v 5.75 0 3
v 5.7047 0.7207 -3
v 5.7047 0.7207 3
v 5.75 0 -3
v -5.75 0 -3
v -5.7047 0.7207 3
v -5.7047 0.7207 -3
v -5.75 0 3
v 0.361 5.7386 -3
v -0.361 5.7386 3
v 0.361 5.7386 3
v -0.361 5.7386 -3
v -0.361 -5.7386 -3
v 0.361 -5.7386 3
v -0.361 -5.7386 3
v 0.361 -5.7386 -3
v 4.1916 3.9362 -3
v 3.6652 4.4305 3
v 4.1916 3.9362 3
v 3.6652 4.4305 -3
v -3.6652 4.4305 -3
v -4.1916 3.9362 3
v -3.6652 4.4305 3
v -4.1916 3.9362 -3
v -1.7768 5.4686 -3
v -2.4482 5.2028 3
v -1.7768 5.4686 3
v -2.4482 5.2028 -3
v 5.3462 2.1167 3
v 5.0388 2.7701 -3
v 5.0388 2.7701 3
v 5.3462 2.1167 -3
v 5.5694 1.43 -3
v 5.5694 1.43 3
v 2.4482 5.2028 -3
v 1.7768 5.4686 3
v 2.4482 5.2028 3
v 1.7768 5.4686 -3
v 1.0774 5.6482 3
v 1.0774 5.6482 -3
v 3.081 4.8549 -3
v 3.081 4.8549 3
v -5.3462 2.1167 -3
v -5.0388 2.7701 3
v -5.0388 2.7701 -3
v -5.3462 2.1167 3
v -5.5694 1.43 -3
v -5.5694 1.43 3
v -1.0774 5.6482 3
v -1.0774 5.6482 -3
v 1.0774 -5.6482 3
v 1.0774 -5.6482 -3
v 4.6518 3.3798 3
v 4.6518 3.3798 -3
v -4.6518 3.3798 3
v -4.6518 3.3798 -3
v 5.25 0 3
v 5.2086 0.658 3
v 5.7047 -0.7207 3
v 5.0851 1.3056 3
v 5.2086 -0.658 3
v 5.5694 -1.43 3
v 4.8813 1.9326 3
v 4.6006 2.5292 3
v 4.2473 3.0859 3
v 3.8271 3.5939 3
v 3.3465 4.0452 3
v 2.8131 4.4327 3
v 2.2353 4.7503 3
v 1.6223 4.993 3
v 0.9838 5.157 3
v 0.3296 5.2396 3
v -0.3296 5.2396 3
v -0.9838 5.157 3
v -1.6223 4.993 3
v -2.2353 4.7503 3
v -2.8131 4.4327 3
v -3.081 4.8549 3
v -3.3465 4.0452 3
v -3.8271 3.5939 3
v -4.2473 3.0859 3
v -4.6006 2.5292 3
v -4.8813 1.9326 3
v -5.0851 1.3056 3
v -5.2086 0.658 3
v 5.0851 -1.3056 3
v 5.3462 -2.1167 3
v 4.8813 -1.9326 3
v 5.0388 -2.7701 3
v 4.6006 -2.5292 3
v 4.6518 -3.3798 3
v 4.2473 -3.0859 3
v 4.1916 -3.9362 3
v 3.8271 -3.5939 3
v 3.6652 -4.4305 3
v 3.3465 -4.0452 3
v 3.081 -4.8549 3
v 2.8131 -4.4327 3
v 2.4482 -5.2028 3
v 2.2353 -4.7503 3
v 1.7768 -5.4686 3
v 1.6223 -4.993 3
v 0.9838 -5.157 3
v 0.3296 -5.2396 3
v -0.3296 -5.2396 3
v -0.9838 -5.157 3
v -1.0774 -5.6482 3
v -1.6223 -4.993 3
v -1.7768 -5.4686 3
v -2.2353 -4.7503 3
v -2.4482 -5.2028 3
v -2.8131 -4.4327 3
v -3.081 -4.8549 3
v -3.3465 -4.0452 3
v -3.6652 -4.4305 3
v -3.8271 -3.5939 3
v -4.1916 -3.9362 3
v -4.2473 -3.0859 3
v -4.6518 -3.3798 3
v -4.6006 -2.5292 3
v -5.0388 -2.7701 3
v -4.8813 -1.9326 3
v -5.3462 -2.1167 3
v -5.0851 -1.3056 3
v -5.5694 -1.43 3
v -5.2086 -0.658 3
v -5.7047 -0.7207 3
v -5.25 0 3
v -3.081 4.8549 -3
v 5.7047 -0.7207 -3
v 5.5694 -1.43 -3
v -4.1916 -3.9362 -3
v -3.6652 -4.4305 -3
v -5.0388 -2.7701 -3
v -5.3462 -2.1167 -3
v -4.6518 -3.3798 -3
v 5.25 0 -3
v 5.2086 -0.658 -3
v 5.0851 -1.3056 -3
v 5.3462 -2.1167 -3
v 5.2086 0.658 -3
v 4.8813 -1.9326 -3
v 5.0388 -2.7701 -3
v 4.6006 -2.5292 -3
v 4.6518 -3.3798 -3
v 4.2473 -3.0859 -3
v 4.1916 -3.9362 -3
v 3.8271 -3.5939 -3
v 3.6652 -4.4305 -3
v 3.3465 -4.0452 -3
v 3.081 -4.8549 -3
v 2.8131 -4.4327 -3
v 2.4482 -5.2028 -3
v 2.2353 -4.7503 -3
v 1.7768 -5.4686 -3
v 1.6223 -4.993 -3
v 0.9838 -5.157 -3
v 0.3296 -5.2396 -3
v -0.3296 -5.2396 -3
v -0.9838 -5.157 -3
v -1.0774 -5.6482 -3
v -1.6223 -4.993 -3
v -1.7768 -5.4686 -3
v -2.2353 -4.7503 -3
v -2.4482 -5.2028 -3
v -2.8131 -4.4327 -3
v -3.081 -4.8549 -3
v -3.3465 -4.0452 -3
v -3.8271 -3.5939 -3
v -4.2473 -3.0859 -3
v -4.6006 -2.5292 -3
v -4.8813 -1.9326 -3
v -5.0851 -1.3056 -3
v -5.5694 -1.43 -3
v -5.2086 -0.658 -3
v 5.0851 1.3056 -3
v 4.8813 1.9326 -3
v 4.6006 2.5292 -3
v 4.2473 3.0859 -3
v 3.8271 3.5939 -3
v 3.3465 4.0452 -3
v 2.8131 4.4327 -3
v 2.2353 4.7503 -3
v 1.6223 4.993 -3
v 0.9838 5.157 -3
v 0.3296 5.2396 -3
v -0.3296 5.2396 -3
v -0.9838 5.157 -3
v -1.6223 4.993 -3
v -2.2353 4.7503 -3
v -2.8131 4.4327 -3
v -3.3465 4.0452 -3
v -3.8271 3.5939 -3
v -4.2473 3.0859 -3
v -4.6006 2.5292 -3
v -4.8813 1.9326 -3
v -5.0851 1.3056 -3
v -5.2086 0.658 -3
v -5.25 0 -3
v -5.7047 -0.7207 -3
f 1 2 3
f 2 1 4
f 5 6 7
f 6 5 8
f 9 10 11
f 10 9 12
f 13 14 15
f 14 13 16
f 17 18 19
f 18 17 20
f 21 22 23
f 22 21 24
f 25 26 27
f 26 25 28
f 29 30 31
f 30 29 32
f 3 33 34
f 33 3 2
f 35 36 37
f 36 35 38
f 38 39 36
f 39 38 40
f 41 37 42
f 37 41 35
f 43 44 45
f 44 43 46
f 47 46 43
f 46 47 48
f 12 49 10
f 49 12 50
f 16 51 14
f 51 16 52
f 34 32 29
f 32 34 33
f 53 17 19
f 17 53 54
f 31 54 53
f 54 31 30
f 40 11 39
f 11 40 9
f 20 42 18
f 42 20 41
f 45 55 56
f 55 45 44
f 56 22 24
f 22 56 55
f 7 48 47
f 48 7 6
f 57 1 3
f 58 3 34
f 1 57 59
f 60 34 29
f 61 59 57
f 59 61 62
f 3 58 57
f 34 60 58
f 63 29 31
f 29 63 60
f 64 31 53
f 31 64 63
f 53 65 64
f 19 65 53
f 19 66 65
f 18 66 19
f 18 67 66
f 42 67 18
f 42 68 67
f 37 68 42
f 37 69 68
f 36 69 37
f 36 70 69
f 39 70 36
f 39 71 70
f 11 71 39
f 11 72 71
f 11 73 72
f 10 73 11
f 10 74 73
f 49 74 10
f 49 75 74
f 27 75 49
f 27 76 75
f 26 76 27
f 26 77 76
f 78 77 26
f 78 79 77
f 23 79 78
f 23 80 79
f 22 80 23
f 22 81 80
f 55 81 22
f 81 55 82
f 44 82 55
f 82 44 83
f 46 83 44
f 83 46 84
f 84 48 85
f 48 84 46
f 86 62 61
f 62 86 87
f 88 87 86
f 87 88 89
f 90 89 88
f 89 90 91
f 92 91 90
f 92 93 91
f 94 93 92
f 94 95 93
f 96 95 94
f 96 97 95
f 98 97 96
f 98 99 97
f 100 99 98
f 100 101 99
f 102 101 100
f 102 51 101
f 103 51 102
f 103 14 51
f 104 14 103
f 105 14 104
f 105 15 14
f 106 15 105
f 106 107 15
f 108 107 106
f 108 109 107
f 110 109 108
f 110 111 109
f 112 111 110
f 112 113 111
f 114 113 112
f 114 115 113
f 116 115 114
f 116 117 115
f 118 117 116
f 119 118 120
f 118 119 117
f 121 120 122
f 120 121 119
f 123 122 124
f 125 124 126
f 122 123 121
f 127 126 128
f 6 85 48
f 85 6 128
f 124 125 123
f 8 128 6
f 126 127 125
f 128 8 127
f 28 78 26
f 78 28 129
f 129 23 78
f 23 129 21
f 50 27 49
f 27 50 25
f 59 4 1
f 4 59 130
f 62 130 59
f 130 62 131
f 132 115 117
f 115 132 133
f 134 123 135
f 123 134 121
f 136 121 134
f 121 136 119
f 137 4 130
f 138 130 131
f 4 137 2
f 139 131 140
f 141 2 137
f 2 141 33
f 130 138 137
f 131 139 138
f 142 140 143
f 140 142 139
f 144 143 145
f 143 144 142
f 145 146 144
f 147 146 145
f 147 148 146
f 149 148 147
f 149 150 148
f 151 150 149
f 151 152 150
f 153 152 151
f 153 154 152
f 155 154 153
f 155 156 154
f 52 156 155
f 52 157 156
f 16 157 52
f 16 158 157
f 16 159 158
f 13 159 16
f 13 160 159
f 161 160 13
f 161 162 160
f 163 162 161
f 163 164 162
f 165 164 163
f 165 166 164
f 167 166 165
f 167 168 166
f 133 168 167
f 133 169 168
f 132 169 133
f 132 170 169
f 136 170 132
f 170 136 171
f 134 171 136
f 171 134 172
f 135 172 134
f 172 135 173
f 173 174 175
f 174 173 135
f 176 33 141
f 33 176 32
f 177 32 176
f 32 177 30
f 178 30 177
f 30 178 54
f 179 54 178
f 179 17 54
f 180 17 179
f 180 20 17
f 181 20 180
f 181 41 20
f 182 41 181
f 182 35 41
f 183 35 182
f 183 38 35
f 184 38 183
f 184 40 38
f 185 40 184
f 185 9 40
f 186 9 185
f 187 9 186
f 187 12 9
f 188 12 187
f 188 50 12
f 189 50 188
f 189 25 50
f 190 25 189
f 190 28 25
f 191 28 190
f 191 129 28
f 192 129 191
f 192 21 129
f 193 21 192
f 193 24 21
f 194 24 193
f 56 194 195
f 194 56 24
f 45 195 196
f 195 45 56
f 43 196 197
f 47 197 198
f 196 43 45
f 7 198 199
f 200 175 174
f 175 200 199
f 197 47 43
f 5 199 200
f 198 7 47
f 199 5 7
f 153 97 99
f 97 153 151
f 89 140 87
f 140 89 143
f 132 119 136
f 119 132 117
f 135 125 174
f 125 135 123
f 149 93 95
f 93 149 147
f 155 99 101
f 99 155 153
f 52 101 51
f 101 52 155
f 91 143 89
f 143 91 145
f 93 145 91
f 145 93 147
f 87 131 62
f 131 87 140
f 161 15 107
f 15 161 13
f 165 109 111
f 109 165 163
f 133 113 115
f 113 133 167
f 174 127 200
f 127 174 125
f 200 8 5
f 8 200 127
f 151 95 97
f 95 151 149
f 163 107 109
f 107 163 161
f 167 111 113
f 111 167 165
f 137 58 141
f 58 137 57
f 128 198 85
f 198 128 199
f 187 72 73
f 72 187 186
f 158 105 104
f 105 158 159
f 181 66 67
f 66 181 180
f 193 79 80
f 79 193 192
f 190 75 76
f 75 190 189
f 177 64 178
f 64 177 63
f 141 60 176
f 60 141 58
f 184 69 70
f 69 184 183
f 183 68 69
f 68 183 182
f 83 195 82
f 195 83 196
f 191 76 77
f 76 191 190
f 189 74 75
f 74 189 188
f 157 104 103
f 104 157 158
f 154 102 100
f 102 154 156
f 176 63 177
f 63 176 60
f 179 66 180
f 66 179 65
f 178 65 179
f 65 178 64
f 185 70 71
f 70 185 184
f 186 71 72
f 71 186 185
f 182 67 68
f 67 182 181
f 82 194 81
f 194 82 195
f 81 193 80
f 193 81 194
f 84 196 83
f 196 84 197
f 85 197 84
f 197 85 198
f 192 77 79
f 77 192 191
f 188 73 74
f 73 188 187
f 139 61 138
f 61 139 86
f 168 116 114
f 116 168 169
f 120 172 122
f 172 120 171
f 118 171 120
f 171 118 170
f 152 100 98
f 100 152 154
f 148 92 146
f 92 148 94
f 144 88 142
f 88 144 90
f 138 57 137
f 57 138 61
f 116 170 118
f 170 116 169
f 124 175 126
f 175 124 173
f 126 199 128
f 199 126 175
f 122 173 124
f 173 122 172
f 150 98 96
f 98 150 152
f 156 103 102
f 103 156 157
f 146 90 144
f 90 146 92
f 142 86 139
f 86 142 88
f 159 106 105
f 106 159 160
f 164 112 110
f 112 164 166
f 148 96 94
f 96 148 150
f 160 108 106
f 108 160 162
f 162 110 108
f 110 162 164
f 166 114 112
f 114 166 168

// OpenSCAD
$fn = 50;


difference() {
	union() {
		translate(v = [0, 0, -3.0000000000]) {
			cylinder(h = 6, r = 5.7500000000);
		}
	}
	union() {
		translate(v = [0, 0, -100.0000000000]) {
			cylinder(h = 200, r = 5.2500000000);
		}
	}
}
